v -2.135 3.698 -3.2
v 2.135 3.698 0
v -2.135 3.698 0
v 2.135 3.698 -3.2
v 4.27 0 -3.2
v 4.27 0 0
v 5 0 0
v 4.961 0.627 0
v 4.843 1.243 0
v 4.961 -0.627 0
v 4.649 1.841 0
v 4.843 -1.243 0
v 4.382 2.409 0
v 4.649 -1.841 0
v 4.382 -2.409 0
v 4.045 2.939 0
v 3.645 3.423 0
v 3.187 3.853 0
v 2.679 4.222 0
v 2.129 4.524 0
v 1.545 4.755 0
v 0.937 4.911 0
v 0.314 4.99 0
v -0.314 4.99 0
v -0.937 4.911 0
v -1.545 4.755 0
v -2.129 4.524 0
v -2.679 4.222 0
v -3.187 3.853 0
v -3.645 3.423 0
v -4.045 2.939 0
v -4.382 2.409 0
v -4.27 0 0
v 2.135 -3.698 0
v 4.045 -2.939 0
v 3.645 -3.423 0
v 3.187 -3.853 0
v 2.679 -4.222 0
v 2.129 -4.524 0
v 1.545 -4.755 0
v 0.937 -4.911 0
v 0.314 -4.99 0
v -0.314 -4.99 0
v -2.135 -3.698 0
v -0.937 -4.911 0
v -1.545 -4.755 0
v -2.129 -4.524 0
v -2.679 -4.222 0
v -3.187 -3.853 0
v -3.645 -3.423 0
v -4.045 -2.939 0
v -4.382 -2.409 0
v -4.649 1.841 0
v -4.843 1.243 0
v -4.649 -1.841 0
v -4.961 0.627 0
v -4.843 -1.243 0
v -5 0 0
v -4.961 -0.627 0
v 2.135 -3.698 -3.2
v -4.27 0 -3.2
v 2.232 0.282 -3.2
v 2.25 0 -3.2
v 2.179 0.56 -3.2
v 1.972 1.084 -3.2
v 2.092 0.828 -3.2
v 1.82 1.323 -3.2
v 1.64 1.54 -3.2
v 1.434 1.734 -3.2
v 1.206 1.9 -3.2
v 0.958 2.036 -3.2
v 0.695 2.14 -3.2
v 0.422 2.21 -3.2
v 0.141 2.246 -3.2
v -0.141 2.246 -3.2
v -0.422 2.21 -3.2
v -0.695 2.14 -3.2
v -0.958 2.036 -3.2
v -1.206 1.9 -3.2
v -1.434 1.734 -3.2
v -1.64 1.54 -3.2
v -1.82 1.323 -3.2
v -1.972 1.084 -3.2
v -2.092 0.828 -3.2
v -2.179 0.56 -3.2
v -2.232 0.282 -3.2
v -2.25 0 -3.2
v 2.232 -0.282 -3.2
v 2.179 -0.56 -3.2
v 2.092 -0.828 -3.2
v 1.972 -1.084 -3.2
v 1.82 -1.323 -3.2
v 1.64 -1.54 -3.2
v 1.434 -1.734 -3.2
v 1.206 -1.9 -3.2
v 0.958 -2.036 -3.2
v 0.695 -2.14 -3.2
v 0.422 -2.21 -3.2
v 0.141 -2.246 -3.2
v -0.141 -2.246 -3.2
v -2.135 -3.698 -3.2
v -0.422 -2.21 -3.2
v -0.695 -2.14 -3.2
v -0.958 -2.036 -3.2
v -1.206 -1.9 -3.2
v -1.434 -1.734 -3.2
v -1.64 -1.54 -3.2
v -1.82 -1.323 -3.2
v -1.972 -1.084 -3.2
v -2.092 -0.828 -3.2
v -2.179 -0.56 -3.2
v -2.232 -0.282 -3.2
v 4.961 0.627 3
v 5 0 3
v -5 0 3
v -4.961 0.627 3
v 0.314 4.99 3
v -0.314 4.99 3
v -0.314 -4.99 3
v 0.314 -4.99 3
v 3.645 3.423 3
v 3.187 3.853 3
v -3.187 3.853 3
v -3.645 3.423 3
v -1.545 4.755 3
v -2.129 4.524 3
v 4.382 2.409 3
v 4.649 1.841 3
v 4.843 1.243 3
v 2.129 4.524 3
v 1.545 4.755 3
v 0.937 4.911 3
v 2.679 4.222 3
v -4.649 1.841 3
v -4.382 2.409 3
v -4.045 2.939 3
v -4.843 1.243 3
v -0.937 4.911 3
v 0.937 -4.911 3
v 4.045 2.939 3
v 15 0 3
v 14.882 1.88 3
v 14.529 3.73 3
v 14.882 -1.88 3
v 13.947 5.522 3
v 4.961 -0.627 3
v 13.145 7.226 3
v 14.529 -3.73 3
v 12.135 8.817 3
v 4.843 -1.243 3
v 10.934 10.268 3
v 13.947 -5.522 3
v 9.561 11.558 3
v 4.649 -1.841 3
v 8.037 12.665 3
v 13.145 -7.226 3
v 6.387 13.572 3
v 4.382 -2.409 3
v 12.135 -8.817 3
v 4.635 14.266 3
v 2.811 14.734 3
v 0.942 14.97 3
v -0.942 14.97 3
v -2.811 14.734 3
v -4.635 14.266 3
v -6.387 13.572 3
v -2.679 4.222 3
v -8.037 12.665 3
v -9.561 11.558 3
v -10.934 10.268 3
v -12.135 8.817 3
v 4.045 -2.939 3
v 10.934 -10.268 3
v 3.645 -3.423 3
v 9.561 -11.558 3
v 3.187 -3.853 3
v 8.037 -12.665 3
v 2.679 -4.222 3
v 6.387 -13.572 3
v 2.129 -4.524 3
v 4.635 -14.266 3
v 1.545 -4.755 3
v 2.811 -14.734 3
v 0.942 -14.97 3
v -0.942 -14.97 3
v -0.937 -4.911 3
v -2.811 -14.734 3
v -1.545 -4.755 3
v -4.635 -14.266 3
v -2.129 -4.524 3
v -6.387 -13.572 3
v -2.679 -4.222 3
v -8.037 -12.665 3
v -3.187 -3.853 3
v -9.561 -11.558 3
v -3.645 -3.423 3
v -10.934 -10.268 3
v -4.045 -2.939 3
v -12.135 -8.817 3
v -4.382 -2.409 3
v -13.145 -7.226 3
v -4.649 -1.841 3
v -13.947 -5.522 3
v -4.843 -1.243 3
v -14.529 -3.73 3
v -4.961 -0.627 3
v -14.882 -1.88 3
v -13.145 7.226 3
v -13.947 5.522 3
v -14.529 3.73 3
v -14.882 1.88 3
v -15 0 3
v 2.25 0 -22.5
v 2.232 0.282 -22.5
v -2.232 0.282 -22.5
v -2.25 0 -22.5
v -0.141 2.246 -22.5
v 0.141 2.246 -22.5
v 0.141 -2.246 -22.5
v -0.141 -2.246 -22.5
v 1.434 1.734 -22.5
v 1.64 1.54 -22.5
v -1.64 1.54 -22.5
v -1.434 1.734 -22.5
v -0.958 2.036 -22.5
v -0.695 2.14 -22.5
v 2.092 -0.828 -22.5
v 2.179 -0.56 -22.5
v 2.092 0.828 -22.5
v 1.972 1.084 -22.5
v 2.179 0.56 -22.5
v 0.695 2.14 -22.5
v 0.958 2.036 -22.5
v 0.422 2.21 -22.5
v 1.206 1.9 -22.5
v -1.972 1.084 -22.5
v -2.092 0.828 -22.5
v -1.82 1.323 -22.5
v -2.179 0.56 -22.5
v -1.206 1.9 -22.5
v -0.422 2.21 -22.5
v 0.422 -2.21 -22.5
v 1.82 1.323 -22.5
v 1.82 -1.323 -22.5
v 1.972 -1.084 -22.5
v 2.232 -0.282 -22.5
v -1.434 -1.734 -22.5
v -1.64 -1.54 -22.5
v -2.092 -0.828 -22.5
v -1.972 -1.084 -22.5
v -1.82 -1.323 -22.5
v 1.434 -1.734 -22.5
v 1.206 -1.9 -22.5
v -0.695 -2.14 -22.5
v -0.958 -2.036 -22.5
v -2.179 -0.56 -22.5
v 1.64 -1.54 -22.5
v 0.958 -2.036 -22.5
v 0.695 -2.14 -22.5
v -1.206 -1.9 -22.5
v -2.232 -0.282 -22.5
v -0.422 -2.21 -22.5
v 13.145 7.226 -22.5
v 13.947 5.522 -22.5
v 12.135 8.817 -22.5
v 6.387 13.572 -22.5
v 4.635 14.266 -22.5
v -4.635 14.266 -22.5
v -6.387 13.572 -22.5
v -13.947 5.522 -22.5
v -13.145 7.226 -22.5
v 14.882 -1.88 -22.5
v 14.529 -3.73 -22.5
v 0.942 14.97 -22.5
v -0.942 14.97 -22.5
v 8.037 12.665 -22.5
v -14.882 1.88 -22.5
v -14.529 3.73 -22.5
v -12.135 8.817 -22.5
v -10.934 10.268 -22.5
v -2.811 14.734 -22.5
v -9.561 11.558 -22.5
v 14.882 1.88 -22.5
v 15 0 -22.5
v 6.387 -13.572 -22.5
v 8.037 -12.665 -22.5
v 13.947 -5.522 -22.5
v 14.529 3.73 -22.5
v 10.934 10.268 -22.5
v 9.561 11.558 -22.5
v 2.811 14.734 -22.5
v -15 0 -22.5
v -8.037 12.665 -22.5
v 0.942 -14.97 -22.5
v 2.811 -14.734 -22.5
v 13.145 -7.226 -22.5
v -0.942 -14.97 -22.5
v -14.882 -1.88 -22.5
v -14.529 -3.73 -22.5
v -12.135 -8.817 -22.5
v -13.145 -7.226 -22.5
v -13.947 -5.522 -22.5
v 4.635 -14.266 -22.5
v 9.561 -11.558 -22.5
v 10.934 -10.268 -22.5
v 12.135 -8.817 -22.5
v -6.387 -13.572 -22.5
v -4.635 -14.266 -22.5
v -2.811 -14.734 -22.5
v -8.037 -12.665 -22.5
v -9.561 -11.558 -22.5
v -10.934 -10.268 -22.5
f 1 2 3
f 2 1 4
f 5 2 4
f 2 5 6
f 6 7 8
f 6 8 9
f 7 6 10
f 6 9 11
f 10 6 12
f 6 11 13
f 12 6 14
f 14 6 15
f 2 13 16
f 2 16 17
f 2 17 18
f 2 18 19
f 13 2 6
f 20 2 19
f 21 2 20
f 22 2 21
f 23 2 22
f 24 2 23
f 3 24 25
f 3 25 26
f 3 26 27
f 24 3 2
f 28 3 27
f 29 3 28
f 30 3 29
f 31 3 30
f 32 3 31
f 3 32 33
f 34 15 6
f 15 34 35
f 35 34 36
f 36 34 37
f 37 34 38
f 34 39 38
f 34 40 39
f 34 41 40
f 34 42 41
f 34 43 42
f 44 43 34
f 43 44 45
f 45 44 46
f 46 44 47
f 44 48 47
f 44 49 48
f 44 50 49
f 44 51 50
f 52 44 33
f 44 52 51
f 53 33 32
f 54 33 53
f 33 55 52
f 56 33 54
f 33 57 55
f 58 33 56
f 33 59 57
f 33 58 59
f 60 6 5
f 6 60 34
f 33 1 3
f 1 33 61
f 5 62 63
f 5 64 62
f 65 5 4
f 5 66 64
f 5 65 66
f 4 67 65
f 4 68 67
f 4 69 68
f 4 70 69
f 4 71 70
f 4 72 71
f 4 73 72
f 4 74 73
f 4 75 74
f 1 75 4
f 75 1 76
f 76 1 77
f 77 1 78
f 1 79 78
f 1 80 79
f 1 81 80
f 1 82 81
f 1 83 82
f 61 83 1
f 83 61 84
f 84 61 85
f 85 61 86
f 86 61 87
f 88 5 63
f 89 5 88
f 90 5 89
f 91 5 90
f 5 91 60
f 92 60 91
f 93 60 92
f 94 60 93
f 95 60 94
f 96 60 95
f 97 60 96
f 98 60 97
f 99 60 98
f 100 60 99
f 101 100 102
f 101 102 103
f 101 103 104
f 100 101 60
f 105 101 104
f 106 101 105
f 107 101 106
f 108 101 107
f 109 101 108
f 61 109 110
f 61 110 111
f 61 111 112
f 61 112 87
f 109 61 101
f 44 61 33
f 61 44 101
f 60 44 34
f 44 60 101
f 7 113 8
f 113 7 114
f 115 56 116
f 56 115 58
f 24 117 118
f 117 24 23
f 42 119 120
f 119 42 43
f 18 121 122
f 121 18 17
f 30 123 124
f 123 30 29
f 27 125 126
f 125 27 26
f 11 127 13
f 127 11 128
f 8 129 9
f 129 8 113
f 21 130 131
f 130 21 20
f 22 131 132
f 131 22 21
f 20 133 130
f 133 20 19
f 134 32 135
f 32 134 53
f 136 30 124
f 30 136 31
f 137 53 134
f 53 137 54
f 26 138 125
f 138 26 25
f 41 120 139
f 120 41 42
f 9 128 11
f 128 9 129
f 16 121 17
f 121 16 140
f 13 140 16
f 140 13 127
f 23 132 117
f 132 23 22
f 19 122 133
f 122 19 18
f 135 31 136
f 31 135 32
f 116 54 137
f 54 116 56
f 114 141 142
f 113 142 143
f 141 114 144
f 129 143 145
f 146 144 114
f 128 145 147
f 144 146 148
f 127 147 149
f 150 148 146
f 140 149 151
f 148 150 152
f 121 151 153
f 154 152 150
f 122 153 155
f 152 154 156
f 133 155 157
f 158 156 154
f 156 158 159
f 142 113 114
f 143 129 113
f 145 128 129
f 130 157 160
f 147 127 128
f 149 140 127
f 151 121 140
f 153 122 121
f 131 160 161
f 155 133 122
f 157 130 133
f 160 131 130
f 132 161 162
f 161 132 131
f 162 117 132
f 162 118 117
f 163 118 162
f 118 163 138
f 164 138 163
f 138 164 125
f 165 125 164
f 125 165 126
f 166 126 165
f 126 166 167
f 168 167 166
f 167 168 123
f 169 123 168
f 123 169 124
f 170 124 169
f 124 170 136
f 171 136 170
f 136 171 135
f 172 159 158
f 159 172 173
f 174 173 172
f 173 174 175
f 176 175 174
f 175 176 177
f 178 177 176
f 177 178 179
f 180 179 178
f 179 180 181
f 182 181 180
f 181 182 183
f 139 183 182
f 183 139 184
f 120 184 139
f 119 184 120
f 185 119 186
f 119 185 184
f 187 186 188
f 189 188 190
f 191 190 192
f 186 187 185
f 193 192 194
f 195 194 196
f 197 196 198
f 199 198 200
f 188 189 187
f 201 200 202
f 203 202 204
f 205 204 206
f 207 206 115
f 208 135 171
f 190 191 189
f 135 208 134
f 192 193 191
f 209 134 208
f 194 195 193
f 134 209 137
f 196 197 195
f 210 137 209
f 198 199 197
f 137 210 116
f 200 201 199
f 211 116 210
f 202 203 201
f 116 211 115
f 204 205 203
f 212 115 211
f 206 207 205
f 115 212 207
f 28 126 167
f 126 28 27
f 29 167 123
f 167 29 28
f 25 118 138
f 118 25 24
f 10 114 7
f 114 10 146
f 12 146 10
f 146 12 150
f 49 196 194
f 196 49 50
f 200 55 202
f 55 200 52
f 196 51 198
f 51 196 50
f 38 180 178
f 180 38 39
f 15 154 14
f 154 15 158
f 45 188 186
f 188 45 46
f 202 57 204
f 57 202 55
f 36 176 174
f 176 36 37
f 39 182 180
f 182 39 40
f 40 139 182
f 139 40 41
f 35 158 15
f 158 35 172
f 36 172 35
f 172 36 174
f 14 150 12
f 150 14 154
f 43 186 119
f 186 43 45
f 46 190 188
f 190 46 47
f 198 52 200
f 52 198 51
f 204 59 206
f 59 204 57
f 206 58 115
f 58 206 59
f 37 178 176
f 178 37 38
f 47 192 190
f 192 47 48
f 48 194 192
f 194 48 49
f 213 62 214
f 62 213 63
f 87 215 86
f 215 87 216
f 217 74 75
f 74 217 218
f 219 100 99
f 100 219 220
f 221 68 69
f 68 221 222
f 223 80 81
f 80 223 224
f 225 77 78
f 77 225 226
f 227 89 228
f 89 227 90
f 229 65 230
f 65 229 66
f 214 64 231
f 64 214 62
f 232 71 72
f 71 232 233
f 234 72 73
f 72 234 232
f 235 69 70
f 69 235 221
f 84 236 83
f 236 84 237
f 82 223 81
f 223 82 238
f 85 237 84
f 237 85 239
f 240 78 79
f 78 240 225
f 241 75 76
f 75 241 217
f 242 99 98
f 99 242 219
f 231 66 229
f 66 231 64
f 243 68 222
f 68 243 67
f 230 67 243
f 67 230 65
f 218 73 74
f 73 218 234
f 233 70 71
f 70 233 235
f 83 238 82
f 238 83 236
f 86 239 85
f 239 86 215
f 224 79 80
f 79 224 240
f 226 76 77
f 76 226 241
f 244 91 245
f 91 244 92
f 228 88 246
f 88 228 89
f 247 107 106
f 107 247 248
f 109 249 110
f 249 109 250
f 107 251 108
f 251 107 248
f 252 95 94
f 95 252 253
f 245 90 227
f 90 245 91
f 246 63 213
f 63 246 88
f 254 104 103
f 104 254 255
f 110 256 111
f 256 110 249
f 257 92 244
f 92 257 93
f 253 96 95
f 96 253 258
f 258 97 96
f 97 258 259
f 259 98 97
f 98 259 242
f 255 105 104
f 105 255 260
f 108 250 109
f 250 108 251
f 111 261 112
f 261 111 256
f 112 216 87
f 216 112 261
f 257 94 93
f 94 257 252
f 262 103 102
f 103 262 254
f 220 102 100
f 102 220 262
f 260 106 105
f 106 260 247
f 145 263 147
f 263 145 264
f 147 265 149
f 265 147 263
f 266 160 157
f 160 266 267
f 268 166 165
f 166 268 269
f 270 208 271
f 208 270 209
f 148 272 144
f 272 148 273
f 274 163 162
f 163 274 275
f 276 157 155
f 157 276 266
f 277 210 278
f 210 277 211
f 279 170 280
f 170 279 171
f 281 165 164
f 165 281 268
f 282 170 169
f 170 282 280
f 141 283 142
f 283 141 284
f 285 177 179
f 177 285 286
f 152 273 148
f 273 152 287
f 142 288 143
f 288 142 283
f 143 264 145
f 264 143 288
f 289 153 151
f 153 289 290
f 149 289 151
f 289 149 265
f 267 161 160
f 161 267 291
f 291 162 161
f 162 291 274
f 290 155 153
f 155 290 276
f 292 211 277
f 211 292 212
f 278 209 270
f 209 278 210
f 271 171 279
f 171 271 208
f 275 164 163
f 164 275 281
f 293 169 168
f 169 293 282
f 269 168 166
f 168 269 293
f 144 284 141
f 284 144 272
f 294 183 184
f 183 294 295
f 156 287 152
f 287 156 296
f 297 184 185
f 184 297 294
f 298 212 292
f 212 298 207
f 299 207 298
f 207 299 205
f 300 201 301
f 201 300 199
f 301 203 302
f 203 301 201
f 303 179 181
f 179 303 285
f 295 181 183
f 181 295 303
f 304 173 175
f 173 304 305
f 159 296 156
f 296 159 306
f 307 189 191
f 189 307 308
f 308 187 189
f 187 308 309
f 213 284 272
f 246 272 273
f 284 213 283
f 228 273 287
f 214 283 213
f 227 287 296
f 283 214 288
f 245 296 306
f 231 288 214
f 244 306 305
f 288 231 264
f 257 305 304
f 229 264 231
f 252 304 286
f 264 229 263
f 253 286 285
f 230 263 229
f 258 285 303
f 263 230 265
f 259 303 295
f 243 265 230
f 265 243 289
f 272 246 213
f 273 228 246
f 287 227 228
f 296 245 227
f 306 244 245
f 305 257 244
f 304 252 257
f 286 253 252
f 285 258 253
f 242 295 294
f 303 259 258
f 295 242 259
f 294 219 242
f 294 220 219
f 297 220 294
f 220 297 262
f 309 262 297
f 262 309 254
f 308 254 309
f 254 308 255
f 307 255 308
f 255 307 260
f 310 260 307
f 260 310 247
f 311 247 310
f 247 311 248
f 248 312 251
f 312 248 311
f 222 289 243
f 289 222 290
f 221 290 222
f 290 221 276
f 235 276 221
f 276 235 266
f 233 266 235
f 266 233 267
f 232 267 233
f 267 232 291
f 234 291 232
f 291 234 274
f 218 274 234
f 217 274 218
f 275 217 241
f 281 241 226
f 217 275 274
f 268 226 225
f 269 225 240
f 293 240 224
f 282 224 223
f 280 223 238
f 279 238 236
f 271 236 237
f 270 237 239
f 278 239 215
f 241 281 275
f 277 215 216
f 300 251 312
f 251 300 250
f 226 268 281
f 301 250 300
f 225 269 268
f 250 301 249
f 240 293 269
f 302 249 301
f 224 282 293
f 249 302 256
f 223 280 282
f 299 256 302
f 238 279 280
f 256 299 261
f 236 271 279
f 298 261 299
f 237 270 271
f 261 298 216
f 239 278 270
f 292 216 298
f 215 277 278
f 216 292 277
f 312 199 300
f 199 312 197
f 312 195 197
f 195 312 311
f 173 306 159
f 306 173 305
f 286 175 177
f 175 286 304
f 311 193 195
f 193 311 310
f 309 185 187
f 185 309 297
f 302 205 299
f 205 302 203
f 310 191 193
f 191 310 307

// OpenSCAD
$fn = 50;

difference() {
	union() {
		translate(v = [0, 0, -22.5]) {
			cylinder(h = 25.5, r = 15.0);
		}
	}
	union() {
		translate(v = [0, 0, 0]) {
			rotate(a = [0, 0, 0]) {
				difference() {
					union() {
						translate(v = [0, 0, -3.2]) {
							linear_extrude(height = 3.2) {
								polygon(points = [[4.2698, 0.0], [2.1349000000000005, 3.697755269078796], [-2.134899999999999, 3.6977552690787965], [-4.2698, 5.228996902999369e-16], [-2.134900000000002, -3.6977552690787956], [2.1348999999999974, -3.697755269078798]]);
							}
						}
					}
					union();
				}
			}
		}
		#cylinder(h = 3, r = 5.0);
		#translate(v = [0, 0, -100.0]) {
			cylinder(h = 200, r = 2.25);
		}
	}
}
